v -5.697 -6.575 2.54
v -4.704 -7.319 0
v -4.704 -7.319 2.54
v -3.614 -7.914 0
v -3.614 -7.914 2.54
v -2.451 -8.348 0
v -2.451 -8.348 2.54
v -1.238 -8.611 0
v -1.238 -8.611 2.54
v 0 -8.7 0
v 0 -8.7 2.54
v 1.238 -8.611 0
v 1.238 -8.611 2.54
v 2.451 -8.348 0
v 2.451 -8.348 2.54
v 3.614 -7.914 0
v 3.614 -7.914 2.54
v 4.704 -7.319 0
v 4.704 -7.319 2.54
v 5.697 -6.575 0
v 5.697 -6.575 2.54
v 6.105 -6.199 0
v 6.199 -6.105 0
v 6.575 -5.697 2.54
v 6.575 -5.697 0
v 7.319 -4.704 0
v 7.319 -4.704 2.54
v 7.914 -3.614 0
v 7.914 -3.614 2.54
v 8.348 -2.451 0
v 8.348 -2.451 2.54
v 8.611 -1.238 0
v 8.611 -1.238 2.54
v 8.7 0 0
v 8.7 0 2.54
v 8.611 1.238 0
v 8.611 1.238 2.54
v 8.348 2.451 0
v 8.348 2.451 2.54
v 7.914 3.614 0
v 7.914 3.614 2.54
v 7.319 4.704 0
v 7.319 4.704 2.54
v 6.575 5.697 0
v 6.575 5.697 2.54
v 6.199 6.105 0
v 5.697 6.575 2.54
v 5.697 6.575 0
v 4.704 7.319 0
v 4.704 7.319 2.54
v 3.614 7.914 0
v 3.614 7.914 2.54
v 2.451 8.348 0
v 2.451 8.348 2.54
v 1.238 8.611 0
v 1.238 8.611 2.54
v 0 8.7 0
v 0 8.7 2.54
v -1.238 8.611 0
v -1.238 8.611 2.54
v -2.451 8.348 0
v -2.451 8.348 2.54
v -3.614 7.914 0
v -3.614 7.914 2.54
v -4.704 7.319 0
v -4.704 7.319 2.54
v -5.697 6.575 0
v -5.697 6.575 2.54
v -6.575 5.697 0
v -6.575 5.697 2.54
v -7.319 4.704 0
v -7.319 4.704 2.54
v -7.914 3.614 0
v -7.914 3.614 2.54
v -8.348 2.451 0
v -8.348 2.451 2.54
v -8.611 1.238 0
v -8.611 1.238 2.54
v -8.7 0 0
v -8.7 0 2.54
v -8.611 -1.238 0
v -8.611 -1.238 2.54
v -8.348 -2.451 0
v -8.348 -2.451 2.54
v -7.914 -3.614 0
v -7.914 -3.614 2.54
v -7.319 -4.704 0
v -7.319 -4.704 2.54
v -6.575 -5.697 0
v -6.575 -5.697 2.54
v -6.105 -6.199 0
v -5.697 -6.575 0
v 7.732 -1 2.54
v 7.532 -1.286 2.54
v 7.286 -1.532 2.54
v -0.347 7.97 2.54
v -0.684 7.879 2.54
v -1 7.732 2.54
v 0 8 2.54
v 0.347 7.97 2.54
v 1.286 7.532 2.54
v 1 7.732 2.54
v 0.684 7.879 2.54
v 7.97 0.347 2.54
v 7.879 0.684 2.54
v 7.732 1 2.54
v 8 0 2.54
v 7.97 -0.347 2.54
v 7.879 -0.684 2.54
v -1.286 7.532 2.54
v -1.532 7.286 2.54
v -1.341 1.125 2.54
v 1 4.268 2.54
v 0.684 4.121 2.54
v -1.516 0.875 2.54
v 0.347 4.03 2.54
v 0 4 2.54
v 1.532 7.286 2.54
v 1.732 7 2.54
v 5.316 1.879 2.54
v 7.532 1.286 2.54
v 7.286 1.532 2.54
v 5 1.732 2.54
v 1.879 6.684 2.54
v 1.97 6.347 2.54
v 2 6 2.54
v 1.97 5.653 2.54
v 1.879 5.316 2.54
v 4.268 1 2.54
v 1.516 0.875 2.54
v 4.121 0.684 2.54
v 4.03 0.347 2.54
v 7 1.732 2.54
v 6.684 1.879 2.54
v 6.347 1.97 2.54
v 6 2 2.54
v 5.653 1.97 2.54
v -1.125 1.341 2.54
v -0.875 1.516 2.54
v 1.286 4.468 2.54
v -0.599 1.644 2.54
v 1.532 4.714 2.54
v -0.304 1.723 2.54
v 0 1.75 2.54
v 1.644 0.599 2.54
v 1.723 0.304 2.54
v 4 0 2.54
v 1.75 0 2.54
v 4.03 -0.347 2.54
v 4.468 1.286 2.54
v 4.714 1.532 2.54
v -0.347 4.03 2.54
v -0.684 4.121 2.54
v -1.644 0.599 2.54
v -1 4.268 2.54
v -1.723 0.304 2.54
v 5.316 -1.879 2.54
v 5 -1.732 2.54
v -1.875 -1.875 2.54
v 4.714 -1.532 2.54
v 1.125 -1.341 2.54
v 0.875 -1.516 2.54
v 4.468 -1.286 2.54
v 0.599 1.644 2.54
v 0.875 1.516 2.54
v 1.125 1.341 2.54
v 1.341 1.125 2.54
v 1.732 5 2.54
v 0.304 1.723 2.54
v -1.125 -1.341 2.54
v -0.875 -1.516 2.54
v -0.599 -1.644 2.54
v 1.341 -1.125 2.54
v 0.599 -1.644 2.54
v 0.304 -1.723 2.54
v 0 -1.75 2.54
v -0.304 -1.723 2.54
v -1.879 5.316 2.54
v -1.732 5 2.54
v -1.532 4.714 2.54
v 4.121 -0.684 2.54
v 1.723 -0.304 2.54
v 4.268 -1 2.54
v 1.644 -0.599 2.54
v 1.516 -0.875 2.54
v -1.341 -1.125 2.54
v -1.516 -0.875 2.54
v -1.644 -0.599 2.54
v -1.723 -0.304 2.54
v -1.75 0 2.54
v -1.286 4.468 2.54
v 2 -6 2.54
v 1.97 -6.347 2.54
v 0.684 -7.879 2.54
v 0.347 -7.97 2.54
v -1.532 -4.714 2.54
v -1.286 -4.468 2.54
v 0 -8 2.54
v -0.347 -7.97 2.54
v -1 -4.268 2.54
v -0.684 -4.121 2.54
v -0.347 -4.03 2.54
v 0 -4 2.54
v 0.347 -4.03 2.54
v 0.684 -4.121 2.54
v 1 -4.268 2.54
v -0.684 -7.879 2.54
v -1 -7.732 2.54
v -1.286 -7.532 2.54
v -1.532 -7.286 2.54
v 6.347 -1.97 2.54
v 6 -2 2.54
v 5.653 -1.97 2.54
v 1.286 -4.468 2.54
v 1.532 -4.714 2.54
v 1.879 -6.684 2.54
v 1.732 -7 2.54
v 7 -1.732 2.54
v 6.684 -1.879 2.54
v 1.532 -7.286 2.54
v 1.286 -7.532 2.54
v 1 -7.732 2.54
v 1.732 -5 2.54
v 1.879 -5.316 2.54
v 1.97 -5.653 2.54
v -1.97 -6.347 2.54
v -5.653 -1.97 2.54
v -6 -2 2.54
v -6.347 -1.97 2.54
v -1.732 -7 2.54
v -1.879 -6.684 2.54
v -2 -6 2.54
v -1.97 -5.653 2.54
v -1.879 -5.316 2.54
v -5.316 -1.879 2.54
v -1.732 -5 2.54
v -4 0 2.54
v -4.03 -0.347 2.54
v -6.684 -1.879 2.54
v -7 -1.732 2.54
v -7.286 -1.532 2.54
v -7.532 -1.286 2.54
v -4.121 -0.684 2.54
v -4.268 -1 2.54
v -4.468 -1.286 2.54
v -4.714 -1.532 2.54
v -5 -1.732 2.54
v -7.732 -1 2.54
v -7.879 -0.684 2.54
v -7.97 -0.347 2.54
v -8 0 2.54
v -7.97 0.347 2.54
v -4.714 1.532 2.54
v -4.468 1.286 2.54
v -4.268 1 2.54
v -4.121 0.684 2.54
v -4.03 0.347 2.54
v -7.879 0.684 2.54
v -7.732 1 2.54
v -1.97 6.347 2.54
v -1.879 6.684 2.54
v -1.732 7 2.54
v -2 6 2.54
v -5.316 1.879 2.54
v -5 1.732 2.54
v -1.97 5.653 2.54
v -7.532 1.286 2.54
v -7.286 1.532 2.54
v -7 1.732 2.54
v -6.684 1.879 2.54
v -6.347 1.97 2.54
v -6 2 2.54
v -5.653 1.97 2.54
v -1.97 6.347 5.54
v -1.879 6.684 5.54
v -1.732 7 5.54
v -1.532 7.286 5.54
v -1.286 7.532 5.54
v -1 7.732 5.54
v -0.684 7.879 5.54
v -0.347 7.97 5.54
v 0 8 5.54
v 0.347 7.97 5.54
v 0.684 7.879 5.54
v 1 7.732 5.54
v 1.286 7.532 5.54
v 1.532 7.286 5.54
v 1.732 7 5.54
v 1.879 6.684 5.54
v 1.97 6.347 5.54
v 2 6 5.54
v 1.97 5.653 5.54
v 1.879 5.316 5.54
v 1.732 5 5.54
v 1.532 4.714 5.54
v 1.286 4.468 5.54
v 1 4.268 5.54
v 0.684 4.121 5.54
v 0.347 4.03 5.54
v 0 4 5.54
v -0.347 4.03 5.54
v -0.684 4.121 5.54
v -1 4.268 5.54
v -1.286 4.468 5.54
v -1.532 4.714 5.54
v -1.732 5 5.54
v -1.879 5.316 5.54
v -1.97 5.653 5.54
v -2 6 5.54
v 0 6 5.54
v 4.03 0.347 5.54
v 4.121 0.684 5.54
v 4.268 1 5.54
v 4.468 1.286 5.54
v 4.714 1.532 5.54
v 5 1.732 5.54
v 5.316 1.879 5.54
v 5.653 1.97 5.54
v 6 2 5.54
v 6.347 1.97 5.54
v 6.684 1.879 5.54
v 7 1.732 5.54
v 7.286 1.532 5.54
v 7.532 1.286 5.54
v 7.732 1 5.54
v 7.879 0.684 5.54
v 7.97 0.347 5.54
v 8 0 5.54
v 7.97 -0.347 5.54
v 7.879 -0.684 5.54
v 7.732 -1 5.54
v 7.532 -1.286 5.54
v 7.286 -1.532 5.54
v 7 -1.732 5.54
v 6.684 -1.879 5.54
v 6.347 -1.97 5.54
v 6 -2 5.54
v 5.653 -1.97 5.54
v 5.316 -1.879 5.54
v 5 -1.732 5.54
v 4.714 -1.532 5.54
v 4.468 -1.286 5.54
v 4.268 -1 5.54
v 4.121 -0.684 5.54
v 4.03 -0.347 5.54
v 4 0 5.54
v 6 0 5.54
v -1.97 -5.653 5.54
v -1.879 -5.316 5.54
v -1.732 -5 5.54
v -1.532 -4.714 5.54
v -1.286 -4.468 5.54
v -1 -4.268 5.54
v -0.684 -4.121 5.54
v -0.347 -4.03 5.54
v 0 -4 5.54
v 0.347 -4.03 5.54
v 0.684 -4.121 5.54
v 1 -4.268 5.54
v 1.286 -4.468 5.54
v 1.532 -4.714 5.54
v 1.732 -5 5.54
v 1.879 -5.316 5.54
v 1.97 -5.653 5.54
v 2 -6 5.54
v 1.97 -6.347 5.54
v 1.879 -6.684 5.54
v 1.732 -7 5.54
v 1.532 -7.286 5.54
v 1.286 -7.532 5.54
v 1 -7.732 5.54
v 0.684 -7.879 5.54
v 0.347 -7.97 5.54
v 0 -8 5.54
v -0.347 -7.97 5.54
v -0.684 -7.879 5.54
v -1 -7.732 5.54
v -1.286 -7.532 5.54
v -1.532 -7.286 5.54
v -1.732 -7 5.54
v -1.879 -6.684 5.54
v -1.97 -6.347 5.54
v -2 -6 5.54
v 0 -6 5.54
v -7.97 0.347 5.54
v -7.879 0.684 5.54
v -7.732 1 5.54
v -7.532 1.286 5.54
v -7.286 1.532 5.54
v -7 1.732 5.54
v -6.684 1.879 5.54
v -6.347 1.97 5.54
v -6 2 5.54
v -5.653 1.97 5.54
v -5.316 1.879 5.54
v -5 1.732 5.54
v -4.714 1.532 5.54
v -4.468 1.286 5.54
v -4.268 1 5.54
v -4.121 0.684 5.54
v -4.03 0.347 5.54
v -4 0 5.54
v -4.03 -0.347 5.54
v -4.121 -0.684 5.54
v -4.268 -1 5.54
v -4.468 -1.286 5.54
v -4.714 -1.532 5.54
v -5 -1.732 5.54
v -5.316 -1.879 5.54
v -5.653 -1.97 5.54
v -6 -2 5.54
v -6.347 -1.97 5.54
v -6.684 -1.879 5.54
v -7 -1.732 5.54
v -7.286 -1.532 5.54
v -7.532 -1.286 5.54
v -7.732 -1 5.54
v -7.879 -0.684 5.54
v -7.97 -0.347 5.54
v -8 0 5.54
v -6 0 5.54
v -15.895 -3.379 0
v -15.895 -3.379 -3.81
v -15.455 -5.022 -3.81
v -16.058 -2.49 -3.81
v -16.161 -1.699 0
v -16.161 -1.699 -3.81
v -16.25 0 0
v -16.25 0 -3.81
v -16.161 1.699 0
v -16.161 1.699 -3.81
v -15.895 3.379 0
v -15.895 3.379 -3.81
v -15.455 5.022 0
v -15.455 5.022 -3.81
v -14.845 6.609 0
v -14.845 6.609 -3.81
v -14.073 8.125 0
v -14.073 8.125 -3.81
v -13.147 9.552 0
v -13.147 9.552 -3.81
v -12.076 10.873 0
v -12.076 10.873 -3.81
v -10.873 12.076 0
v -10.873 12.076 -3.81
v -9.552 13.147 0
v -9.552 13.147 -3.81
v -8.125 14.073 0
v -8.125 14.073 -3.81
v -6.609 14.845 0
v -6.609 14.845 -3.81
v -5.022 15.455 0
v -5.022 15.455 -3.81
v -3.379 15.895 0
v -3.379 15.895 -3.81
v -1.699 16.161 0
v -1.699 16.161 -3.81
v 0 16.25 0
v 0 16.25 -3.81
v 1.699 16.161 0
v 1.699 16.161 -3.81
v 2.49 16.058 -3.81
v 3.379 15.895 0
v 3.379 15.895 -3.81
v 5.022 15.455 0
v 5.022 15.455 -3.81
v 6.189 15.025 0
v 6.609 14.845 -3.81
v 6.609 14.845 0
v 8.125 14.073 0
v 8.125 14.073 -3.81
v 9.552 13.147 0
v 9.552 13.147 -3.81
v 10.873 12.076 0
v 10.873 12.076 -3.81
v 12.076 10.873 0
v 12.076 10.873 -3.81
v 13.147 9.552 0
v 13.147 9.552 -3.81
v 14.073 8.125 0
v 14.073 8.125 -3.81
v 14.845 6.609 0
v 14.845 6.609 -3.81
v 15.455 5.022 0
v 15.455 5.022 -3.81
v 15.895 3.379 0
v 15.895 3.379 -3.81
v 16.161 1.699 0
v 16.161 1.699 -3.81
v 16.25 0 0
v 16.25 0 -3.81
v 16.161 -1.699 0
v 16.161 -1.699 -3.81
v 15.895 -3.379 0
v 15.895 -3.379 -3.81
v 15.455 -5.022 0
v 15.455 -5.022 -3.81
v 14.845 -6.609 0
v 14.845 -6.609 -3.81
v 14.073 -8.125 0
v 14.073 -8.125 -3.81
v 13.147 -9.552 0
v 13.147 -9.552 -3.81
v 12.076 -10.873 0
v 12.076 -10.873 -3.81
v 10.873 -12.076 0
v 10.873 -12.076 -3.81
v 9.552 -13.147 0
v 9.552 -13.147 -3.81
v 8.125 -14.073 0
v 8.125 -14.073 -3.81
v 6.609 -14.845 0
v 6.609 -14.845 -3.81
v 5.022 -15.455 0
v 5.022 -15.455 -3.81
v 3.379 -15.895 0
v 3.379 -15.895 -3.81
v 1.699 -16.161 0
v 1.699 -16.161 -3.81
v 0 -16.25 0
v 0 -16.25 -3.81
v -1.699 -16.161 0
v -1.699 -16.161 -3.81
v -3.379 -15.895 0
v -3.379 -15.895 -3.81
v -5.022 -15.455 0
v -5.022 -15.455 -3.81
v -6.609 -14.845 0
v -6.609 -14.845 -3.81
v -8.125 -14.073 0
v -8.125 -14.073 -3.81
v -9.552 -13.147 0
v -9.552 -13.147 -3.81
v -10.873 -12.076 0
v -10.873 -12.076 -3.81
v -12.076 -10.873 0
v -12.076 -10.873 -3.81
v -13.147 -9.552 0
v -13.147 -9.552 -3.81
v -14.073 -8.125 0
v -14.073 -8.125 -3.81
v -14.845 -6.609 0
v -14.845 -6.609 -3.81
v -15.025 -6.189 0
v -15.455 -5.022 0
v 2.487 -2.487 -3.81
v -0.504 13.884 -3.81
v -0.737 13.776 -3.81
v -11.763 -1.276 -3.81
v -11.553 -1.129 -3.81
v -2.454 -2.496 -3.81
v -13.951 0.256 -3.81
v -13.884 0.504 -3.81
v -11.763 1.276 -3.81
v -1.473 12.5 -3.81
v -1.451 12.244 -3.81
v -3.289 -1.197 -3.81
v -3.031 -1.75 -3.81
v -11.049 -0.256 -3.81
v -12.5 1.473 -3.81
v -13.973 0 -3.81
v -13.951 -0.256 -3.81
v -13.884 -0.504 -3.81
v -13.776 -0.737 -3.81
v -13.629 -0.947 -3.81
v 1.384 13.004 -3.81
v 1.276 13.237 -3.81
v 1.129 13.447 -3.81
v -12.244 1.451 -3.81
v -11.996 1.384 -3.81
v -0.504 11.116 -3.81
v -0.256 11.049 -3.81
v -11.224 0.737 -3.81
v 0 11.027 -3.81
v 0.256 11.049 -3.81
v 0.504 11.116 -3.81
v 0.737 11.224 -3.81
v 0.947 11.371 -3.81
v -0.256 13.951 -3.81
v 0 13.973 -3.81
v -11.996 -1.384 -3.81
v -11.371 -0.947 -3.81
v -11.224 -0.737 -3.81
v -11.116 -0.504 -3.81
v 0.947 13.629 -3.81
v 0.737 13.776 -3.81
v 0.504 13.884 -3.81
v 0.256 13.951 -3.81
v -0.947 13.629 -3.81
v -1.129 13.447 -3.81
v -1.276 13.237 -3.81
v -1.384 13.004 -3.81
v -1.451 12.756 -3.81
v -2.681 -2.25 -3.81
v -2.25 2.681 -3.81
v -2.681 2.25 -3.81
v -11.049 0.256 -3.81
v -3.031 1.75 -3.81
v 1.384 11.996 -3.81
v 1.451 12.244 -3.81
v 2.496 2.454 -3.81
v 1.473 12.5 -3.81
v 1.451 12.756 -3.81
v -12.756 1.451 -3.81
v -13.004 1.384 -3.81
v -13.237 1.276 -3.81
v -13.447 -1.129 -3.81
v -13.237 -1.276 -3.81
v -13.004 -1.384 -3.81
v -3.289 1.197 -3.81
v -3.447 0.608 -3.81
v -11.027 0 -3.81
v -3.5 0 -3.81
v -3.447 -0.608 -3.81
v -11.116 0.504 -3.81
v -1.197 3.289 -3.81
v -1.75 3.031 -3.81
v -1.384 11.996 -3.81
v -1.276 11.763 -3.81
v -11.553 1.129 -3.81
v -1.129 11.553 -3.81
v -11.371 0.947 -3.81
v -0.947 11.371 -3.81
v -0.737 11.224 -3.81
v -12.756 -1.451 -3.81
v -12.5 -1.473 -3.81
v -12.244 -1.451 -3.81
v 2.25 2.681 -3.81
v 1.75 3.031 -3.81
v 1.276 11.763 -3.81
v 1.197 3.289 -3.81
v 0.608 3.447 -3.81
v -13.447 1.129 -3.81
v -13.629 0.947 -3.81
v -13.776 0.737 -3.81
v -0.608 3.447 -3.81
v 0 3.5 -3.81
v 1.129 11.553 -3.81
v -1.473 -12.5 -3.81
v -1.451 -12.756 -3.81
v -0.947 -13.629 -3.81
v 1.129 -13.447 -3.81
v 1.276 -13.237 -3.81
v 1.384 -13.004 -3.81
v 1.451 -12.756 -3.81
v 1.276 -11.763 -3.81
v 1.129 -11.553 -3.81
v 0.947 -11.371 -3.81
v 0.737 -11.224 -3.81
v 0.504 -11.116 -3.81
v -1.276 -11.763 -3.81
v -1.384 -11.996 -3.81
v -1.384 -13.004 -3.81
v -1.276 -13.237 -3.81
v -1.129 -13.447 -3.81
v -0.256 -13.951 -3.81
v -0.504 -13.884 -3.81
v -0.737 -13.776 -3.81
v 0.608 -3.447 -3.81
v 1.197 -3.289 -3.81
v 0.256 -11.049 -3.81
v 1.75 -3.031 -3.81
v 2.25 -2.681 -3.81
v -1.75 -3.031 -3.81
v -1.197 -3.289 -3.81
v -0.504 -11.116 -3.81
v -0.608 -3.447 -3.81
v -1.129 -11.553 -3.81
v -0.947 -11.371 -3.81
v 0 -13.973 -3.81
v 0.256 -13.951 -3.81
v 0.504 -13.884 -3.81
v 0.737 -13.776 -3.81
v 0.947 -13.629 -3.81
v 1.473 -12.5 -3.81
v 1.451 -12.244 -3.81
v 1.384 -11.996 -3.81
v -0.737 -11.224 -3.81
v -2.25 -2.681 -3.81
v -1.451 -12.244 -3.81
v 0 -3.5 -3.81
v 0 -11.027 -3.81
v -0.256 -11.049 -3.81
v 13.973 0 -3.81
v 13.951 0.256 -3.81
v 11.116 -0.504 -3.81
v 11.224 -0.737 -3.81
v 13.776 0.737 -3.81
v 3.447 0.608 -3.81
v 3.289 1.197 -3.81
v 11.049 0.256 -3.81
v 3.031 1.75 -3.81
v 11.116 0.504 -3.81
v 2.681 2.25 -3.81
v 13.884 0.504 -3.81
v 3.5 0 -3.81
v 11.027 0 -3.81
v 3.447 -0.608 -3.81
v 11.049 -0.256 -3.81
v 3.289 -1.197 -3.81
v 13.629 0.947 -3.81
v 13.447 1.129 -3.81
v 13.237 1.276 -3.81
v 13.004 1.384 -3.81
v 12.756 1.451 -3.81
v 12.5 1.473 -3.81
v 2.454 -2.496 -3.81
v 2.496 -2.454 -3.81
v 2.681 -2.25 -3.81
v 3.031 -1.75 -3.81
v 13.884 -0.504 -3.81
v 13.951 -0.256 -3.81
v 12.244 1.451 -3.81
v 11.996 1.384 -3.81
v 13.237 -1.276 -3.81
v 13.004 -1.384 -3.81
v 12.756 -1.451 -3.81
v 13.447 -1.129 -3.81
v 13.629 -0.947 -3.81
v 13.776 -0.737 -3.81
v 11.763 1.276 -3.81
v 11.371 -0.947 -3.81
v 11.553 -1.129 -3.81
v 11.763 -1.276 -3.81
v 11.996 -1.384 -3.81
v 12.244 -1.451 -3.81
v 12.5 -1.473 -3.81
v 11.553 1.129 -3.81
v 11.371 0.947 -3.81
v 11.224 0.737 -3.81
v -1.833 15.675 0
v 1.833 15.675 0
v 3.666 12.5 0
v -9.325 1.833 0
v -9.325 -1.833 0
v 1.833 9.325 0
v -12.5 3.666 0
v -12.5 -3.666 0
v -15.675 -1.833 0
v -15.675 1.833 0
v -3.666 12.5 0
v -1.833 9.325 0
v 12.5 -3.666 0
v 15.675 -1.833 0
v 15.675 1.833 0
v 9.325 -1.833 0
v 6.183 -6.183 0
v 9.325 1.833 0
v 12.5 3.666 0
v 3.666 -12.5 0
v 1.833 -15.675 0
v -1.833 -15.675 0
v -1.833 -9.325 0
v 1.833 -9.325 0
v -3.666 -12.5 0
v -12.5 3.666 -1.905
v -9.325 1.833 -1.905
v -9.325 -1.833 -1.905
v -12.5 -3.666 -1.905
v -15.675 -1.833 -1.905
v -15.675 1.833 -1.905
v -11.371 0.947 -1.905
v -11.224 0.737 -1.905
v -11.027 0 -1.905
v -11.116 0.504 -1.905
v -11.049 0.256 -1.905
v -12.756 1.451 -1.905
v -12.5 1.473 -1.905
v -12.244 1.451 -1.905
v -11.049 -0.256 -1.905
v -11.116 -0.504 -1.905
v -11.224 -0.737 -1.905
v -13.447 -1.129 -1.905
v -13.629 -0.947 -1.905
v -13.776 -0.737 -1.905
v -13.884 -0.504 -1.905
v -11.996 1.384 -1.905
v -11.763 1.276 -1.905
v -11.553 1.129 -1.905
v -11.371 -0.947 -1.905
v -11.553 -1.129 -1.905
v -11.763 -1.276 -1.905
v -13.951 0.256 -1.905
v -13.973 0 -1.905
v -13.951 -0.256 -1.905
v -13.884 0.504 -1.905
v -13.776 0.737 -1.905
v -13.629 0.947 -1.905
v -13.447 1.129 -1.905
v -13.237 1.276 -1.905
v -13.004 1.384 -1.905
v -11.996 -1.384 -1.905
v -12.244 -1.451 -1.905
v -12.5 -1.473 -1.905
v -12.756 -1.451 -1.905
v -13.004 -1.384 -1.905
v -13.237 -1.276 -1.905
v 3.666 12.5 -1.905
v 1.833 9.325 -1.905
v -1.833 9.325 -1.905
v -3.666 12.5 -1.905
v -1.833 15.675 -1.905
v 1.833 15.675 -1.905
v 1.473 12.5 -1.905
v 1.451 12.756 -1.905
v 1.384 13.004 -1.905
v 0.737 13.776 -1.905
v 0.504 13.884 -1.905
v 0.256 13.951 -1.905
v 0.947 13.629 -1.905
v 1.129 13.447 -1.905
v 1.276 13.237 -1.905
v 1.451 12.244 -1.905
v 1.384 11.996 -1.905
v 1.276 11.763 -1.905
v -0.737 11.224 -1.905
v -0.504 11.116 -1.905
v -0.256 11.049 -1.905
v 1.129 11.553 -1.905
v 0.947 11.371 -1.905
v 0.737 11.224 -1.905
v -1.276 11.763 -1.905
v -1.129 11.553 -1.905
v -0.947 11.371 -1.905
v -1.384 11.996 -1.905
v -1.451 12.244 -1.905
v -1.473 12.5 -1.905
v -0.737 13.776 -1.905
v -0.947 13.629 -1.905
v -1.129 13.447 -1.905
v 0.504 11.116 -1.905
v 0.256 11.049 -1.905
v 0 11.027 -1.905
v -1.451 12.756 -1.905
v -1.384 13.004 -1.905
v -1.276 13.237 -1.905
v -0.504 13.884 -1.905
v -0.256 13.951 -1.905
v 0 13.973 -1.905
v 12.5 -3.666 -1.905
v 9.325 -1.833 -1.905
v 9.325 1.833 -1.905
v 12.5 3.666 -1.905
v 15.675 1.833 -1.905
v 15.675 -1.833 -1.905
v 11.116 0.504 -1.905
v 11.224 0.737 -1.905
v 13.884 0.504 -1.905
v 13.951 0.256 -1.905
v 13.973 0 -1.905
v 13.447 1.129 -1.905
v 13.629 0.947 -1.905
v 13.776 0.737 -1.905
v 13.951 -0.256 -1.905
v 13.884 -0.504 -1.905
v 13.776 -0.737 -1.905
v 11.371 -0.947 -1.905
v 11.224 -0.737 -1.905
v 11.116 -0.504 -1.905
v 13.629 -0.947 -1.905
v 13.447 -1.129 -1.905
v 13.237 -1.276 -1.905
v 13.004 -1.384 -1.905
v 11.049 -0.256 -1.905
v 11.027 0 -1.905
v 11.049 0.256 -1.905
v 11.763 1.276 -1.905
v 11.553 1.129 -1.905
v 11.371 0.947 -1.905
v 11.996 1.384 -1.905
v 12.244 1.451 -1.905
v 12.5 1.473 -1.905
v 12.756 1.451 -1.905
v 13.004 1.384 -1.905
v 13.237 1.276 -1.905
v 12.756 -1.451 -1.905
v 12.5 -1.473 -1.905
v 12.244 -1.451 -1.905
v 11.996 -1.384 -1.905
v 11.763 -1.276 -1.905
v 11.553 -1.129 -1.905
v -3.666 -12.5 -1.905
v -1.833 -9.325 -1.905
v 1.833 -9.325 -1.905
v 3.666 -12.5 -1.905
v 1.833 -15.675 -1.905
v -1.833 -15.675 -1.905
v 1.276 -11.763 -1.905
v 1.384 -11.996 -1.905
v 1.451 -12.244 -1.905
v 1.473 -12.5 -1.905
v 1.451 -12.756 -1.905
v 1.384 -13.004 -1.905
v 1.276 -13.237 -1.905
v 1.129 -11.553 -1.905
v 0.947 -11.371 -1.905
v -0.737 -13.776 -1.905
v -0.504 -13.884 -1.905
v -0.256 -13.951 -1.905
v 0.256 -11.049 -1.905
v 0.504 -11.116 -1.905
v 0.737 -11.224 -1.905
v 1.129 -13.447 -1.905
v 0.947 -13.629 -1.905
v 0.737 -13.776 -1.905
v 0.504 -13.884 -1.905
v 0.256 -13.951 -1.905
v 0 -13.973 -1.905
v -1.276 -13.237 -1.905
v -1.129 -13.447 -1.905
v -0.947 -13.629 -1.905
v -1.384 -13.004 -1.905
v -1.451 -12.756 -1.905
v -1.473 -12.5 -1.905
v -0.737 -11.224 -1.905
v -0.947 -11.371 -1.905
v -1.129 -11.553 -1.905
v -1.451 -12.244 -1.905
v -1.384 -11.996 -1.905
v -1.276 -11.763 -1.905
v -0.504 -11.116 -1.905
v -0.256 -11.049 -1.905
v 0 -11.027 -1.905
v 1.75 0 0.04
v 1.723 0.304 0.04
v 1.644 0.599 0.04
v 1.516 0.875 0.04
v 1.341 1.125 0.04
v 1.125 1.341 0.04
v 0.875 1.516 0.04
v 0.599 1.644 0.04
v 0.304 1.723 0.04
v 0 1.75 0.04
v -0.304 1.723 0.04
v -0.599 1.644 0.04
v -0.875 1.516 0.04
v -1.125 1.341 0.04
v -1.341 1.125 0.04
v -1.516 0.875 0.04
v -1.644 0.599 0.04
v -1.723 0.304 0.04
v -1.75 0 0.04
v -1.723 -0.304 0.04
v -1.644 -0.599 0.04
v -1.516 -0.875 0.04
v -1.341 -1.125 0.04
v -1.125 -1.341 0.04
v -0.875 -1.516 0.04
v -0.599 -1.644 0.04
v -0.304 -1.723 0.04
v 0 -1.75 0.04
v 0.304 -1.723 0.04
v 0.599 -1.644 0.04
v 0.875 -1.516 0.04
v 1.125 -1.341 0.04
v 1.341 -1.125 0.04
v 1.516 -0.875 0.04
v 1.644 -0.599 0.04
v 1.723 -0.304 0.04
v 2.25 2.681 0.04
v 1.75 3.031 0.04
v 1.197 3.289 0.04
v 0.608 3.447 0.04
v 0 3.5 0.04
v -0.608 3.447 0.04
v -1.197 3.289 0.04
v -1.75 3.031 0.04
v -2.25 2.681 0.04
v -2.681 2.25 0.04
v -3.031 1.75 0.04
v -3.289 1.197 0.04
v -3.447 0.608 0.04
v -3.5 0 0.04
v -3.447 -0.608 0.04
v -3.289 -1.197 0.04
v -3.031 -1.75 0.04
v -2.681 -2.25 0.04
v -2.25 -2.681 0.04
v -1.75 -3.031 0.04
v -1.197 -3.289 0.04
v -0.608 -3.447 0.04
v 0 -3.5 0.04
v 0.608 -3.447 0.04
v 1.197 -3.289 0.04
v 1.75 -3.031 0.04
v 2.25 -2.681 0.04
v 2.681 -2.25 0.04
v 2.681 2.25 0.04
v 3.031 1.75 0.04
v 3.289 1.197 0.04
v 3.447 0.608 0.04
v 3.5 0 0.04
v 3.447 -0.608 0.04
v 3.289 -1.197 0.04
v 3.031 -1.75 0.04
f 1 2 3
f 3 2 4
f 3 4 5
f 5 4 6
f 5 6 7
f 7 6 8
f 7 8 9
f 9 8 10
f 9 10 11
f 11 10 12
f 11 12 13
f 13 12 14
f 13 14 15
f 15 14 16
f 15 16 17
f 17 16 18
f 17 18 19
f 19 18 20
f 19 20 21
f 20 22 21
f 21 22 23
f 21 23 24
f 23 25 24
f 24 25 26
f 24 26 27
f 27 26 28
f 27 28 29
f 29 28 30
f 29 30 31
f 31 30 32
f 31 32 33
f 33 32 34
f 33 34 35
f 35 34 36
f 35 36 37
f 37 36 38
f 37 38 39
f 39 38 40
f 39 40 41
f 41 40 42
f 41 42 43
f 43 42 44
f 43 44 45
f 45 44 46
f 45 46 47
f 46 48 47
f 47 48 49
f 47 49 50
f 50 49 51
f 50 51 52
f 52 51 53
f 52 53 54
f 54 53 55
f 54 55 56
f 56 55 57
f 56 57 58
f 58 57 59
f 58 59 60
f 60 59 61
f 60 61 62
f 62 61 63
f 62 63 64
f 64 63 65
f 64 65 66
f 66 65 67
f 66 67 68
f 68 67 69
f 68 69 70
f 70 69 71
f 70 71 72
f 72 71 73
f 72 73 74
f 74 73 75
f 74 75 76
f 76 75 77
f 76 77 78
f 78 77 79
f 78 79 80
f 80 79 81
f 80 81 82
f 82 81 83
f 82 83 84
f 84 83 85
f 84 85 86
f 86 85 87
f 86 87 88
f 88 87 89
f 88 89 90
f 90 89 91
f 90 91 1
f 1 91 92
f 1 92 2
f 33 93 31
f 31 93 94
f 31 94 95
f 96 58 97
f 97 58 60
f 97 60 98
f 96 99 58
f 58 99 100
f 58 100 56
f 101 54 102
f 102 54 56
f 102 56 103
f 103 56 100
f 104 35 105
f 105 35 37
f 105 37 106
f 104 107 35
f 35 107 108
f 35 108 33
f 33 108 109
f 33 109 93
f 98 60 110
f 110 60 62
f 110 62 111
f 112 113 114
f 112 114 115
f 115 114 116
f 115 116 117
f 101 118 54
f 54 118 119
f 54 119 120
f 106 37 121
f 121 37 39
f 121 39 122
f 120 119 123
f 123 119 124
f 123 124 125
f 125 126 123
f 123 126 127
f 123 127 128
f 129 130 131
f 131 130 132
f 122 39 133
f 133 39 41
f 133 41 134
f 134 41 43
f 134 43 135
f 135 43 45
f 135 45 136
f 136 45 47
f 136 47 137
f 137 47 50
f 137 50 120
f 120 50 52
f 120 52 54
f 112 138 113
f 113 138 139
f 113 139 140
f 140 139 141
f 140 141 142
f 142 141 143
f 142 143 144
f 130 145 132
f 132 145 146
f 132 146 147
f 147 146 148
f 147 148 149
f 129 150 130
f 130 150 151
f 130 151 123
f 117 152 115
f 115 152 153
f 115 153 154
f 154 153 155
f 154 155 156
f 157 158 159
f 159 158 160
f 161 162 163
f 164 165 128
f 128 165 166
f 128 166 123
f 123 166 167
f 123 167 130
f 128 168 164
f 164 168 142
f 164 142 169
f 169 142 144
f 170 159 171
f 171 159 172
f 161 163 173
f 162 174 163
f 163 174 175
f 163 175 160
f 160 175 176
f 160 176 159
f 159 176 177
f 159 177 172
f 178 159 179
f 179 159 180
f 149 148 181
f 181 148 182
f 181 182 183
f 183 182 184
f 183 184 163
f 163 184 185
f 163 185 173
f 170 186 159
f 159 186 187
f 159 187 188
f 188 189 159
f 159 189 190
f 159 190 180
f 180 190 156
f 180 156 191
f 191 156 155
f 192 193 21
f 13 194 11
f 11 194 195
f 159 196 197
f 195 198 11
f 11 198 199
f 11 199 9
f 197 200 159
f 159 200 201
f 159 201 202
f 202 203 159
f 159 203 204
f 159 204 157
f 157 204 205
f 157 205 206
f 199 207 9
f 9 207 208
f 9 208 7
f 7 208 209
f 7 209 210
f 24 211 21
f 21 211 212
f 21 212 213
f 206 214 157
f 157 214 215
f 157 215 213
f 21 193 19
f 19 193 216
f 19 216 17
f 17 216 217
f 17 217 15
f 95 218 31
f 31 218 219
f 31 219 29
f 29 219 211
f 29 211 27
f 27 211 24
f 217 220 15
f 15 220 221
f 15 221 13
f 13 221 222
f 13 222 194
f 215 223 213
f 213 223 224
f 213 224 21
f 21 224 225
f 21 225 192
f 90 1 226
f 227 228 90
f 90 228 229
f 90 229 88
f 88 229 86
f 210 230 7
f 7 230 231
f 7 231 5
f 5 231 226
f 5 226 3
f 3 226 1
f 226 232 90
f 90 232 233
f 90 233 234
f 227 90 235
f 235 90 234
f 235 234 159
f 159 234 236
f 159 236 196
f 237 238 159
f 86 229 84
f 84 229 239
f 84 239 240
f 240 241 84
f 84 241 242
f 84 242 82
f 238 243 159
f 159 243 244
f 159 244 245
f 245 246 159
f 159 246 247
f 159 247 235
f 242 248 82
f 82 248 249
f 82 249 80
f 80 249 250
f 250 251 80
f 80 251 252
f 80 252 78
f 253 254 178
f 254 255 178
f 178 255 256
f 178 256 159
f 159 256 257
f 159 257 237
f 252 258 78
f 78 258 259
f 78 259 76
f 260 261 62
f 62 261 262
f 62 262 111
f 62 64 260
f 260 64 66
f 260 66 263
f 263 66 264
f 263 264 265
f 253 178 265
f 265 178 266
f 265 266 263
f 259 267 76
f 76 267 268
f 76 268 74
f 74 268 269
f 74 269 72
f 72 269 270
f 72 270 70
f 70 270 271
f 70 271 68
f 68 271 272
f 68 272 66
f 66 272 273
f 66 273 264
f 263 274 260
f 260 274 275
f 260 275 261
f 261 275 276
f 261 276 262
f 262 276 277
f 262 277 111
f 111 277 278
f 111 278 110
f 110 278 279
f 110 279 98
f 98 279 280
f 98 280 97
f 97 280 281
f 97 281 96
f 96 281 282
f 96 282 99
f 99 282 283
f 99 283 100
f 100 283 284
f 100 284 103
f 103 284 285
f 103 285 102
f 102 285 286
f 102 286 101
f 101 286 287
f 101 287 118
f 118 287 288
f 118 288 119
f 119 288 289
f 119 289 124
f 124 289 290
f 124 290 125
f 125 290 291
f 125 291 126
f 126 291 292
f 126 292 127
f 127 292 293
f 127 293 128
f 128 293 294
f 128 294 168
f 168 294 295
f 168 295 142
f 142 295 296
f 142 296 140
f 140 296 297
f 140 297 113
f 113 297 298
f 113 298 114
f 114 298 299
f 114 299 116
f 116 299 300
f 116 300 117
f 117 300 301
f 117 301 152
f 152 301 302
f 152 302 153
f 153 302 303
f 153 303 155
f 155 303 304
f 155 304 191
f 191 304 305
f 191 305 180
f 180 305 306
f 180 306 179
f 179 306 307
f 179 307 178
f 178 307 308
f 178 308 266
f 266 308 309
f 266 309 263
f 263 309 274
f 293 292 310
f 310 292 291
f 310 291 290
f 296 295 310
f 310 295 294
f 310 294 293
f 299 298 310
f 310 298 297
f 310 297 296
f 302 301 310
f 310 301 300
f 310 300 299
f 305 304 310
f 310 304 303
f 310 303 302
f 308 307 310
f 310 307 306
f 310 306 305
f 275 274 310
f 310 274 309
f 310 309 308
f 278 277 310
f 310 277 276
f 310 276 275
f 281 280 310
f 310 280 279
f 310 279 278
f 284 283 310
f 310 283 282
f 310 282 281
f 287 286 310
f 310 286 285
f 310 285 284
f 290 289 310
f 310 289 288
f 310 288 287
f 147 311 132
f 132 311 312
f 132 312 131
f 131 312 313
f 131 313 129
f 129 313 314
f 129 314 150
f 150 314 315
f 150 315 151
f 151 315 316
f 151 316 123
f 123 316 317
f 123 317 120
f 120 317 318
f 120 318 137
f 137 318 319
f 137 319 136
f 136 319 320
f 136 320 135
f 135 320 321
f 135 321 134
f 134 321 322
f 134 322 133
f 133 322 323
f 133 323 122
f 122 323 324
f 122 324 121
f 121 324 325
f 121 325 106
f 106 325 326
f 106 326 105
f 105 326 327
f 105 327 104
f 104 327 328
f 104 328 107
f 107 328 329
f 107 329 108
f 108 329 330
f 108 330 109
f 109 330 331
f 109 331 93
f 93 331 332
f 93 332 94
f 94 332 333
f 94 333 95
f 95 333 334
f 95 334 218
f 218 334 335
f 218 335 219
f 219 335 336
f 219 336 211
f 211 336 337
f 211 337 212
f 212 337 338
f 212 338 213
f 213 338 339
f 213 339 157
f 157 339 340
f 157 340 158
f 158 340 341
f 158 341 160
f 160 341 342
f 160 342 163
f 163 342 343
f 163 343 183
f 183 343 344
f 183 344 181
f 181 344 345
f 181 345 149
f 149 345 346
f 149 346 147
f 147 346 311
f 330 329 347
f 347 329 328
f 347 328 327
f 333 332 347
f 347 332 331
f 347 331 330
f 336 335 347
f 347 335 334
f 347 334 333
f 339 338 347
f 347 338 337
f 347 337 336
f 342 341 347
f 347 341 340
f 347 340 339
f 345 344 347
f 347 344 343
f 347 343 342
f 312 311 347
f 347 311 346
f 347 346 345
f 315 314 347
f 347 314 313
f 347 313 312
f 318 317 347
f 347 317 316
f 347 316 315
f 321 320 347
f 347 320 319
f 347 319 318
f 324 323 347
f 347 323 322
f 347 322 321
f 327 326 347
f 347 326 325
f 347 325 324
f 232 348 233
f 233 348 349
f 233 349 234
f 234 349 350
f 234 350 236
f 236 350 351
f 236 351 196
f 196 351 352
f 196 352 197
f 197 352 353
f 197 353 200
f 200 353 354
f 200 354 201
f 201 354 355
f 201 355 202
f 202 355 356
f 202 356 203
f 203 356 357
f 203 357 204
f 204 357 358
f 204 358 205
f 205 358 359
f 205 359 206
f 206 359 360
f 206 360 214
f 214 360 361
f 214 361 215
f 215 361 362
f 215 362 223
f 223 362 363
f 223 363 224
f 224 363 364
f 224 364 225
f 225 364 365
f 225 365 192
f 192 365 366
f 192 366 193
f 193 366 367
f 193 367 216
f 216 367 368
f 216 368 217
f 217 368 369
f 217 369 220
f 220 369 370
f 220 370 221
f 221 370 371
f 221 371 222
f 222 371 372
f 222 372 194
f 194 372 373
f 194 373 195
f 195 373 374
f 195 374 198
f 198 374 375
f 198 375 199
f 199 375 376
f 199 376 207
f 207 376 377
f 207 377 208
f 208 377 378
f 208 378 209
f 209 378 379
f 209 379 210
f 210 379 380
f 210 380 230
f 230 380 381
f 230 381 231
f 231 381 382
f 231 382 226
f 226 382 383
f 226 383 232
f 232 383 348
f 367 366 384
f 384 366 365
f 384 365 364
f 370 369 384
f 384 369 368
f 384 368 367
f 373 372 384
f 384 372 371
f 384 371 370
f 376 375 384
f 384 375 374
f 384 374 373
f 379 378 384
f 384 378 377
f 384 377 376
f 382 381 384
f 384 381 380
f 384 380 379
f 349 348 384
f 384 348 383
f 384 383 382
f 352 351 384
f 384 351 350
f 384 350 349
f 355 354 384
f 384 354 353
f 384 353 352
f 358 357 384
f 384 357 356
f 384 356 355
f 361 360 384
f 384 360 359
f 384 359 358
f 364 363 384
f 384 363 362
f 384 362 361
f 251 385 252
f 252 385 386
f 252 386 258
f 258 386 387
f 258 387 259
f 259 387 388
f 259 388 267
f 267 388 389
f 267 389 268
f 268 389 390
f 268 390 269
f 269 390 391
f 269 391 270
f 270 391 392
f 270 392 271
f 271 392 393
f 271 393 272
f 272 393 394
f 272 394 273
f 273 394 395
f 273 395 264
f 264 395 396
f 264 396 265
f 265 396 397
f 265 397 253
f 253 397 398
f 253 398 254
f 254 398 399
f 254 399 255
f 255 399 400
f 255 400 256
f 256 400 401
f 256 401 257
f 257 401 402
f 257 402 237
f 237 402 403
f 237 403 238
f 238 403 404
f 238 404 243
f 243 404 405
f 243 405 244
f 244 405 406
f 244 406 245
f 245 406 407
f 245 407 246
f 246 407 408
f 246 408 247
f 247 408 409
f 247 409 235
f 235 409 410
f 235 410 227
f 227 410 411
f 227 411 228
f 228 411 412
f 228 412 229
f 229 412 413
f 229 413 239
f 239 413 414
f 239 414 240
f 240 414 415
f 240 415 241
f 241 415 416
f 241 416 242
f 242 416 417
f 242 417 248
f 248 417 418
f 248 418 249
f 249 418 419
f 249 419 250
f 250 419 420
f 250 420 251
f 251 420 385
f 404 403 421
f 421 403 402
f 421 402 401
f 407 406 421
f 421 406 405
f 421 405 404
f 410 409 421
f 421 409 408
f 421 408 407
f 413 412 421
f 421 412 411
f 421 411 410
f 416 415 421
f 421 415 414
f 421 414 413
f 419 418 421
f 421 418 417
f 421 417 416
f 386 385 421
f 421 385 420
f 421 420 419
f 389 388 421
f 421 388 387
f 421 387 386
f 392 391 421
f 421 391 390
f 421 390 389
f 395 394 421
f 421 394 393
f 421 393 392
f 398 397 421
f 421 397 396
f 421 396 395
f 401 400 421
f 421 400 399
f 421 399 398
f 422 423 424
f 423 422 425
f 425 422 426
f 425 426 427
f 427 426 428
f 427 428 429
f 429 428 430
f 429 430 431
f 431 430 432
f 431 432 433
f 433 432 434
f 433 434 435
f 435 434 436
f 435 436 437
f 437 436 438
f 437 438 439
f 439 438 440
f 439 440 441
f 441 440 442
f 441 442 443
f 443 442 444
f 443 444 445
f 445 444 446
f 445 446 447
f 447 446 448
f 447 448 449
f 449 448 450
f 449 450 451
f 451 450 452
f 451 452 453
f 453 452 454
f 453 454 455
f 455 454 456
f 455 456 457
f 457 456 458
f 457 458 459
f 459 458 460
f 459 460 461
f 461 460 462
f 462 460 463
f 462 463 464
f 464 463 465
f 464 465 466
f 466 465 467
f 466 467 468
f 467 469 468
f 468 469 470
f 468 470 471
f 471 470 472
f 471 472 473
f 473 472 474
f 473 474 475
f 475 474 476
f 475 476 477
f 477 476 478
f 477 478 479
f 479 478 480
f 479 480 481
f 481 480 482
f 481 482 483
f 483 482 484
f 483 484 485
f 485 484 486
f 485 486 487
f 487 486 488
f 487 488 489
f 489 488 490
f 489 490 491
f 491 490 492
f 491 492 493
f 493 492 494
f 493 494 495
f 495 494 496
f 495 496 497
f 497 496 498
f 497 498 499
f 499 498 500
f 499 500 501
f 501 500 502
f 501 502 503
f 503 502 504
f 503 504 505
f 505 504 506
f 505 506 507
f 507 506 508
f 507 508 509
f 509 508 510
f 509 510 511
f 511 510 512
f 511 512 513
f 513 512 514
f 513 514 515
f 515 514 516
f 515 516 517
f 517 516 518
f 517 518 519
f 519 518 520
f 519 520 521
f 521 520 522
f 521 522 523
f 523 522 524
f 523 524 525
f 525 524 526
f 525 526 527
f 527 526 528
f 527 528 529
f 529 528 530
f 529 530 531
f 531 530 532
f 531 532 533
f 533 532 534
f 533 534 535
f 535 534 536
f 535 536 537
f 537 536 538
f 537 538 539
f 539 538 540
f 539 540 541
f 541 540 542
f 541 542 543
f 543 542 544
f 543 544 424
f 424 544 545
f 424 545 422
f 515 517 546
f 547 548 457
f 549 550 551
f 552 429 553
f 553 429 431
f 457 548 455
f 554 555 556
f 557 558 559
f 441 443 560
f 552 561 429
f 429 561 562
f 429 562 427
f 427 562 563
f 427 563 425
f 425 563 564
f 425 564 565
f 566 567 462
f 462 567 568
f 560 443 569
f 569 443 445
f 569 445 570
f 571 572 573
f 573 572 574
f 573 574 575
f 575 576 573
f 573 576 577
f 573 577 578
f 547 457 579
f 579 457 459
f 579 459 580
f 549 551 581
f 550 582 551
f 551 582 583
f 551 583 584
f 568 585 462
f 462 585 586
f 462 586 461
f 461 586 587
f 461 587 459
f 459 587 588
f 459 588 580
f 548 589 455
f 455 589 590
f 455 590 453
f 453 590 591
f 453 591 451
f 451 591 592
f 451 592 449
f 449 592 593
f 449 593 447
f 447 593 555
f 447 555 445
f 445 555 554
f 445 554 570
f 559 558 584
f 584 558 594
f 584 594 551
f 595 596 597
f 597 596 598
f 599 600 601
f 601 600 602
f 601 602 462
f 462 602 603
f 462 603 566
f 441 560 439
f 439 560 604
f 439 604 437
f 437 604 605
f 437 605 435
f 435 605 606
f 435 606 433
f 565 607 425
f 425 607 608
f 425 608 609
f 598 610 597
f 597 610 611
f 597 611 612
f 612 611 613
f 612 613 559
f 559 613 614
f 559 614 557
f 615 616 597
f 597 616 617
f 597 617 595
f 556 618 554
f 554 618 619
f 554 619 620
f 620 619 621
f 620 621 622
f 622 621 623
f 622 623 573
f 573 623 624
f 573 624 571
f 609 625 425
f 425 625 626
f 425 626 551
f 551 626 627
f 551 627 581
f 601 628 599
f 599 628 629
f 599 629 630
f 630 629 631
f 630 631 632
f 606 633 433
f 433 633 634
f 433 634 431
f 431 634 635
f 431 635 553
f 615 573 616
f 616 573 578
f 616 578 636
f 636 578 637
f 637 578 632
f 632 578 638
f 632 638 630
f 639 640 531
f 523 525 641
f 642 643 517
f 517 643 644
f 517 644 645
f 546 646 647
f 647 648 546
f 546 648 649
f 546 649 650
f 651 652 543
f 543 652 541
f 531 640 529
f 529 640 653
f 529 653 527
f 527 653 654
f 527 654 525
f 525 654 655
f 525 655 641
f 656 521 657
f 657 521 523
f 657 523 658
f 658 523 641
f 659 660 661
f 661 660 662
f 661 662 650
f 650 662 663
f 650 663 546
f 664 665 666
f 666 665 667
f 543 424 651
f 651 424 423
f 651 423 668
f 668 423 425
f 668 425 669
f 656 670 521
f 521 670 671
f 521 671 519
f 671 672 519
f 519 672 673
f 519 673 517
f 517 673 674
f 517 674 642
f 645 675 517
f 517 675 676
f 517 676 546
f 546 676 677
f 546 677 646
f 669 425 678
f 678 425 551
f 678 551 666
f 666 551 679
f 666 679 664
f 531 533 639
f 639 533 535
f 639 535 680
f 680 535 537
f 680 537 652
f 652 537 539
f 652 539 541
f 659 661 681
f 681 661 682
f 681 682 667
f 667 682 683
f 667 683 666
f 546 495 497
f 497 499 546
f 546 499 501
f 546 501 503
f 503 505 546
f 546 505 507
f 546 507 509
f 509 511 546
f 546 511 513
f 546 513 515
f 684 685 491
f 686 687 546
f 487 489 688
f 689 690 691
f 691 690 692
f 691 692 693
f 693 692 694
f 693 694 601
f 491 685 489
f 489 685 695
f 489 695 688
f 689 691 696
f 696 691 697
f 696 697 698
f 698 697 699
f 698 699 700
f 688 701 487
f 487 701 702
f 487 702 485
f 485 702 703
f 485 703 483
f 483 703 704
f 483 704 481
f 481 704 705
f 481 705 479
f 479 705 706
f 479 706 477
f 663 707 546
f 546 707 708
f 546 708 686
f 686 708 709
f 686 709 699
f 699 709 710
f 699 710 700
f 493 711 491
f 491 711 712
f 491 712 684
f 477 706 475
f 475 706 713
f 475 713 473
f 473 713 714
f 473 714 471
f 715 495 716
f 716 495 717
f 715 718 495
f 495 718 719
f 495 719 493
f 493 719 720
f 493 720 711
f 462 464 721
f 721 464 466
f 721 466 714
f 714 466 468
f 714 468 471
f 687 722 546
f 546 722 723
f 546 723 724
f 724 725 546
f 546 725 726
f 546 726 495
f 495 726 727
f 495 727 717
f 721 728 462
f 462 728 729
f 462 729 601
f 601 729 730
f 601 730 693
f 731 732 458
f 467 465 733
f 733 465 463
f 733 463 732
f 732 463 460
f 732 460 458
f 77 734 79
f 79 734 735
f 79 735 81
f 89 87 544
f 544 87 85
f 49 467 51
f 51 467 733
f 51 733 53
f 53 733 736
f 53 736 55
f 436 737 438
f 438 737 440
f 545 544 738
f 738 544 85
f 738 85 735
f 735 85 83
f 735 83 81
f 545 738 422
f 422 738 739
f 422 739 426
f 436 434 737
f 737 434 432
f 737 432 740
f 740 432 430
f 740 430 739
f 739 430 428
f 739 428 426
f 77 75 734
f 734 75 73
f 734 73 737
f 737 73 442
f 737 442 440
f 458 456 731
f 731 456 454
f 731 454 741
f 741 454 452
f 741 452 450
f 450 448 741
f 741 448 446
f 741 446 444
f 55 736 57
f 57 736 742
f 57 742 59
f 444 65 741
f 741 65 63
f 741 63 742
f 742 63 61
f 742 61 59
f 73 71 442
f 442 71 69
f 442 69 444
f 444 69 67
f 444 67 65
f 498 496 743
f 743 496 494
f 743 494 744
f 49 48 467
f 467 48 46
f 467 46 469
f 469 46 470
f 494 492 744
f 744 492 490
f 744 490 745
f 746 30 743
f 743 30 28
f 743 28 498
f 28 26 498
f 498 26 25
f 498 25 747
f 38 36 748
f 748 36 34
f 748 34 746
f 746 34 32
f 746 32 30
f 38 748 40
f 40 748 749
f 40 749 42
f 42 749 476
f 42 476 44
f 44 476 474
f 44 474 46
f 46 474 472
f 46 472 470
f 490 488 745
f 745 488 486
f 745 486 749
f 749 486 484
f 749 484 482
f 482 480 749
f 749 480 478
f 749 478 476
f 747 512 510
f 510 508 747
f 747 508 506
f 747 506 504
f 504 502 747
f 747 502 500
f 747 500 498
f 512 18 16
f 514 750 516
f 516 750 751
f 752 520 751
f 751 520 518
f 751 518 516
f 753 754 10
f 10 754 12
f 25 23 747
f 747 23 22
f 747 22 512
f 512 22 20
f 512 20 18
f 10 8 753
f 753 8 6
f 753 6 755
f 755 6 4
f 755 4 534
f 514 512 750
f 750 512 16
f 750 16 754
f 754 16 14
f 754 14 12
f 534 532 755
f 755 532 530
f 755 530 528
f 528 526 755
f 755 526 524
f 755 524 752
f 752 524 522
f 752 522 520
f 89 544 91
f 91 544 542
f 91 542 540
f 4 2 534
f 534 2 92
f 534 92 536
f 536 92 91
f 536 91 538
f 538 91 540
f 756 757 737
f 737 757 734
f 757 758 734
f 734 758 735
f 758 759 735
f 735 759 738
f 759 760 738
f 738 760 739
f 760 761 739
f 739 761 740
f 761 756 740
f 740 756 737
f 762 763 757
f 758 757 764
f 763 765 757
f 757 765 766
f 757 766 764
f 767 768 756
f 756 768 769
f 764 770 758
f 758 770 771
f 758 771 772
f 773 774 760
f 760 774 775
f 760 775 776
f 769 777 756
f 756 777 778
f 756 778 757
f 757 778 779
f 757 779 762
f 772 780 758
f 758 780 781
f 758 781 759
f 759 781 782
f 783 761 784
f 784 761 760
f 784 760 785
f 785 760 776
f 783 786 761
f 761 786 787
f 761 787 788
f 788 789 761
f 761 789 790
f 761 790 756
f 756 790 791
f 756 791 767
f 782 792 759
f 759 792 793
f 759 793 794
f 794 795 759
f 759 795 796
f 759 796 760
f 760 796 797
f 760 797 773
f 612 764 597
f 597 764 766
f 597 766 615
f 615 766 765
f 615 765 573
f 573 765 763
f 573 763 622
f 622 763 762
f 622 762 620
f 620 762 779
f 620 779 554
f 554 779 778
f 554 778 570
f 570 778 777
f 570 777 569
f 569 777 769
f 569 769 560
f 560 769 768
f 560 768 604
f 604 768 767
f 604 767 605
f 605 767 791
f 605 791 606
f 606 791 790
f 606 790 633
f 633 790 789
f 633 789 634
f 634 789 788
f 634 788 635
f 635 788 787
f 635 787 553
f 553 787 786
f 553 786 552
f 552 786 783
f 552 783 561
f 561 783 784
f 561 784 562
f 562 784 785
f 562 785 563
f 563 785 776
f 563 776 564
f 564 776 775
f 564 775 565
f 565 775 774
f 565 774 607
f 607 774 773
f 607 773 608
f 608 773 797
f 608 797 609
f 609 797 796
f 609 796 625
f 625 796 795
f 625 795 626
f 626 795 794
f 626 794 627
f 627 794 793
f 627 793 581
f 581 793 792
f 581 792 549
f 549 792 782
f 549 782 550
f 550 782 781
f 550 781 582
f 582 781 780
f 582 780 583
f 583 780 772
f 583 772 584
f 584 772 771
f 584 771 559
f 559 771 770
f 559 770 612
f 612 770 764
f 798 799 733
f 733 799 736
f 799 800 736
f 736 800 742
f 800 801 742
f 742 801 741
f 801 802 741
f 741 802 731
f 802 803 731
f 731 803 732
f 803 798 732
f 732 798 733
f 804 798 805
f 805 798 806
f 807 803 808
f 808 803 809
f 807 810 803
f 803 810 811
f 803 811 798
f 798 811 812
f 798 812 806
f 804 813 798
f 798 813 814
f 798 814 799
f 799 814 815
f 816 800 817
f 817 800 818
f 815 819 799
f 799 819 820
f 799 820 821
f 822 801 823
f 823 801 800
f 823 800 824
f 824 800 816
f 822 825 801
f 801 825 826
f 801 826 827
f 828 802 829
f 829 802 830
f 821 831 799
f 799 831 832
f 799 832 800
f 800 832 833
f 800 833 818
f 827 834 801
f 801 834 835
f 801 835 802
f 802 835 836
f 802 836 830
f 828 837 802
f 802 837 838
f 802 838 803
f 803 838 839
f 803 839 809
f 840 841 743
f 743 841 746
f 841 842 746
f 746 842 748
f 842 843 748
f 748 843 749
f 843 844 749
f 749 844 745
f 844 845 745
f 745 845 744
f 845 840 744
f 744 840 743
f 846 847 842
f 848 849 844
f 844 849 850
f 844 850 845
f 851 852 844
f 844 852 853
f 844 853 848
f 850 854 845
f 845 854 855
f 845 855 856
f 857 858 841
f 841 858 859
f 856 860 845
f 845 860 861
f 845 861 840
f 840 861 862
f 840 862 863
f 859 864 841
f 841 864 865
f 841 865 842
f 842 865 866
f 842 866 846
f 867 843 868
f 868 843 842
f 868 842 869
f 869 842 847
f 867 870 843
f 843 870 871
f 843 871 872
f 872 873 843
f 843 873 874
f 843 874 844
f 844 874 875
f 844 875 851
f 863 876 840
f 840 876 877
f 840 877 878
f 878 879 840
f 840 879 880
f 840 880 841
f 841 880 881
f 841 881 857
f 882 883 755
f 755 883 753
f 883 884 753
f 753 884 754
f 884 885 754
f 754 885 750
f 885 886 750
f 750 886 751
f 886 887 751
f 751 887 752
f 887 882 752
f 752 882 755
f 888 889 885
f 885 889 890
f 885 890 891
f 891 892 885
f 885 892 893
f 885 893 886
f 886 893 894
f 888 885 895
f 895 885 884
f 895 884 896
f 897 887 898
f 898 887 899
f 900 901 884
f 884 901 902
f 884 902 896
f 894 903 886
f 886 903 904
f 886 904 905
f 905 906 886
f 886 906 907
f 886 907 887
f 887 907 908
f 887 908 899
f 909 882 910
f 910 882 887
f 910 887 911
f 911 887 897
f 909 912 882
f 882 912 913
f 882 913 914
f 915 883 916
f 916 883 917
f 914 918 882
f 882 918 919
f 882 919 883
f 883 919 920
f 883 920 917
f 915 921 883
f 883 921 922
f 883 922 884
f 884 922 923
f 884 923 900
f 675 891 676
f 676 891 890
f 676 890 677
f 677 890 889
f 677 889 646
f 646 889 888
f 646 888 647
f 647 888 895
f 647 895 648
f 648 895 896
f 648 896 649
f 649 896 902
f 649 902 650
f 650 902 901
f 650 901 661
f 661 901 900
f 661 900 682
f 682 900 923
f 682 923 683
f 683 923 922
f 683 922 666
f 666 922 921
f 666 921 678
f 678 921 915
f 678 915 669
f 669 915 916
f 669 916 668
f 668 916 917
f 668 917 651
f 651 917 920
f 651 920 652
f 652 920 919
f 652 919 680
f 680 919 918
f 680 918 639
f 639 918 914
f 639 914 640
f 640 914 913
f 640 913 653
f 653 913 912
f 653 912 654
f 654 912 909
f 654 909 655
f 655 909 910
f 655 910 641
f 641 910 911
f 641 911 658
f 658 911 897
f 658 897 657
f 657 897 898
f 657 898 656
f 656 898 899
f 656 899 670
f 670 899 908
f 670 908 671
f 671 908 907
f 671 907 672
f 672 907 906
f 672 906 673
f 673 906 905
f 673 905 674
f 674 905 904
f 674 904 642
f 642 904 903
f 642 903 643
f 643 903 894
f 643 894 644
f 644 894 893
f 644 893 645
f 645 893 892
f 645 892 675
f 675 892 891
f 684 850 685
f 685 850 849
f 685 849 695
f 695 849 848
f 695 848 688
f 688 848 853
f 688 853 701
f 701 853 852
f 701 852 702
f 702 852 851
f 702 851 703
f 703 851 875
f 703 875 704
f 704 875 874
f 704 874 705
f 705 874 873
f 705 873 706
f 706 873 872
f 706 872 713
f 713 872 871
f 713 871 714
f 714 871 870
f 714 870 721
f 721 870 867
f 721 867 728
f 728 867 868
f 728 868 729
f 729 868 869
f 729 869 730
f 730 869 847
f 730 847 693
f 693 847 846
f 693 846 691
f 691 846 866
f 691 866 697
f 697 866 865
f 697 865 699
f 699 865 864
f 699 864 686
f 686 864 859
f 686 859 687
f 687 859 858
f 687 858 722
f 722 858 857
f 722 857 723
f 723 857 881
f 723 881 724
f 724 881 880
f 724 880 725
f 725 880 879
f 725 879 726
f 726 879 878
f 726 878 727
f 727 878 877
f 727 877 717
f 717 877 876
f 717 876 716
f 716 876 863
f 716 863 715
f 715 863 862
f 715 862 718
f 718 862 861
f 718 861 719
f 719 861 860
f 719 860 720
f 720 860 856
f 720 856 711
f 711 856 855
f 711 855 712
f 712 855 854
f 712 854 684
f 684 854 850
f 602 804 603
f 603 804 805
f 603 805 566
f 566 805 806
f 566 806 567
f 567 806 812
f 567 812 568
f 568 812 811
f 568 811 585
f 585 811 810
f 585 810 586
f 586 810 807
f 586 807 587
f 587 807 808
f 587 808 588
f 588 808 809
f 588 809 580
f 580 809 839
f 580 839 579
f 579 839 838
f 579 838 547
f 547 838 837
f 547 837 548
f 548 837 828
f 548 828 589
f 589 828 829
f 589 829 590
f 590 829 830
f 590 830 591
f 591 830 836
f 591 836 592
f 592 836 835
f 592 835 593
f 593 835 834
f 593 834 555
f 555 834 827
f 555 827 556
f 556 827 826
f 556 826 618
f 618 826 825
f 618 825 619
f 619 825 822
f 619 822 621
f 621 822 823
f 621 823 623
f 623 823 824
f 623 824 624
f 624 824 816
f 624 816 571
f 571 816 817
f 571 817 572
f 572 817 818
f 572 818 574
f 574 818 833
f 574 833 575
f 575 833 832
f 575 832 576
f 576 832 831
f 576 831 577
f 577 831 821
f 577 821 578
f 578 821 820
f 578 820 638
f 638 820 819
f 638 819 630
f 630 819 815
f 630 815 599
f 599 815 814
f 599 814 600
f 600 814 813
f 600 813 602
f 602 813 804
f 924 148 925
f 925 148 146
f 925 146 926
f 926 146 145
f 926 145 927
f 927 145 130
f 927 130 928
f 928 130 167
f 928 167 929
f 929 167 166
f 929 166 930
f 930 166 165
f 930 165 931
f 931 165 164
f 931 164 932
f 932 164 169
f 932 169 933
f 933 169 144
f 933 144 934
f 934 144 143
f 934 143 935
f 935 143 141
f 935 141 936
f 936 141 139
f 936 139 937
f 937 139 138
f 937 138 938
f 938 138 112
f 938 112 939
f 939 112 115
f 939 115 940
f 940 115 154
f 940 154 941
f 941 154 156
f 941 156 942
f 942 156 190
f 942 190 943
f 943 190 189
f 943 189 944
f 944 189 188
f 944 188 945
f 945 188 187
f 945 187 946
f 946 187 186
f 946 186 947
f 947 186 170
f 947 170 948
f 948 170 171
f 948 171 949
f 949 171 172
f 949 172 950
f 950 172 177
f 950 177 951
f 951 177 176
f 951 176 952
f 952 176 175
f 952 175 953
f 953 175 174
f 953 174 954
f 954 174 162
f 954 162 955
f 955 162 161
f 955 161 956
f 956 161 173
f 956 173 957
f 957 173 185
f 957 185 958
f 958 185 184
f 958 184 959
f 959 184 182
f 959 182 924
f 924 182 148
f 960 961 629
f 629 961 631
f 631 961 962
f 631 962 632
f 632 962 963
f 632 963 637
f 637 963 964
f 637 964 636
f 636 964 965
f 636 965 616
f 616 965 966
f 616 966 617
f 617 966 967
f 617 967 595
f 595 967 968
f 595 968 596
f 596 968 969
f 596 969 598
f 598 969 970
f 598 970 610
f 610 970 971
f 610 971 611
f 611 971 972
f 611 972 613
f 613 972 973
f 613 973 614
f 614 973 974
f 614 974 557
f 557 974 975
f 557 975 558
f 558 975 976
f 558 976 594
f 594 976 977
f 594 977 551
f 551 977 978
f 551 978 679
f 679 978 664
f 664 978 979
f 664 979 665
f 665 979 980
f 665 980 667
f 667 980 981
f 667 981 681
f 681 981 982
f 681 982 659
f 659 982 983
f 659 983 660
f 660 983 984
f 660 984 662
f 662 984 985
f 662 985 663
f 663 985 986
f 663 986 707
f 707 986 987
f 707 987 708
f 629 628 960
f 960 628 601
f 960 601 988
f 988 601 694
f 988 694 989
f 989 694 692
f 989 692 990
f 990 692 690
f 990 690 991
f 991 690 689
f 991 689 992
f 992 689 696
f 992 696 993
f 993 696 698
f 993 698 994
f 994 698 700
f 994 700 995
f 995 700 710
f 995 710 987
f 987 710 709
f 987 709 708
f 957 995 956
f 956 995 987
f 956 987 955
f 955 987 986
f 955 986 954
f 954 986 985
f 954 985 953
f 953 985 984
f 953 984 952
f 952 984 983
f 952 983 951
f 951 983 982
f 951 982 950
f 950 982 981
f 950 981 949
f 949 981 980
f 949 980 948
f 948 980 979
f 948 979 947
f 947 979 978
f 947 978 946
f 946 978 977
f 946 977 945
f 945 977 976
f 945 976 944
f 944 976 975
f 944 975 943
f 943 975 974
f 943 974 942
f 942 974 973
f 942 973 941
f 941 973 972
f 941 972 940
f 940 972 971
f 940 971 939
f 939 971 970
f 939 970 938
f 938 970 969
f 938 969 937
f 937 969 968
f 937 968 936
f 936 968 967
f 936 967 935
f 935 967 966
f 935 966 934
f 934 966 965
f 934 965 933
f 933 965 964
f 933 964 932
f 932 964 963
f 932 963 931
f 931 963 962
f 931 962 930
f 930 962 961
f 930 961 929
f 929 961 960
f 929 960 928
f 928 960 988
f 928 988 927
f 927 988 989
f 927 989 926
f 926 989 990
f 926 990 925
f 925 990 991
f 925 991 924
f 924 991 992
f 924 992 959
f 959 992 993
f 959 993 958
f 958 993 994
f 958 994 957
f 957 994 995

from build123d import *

# Parameters (mm, degrees)
SKETCH1_R             = 8.7
BOSS_EXTRUDE1_DEPTH   = 2.54
SKETCH2_R             = 2
BOSS_EXTRUDE2_DEPTH   = 3
SKETCH3_R             = 16.25
BOSS_EXTRUDE3_DEPTH   = 3.81
CUT_EXTRUDE1_DEPTH    = 1.905
F_4_CLEARANCE_HOLE1_D = 2.9464
CIRPATTERN1_COUNT     = 4
SKETCH8_R             = 1.75
CUT_EXTRUDE2_DEPTH    = 2.5
SKETCH9_R             = 3.5
CUT_EXTRUDE3_DEPTH    = 24.629959797


with BuildPart() as part:
    # Sketch1 → Boss-Extrude1 (new body)
    with BuildSketch(Plane.XY):
        Circle(SKETCH1_R)
    extrude(amount=BOSS_EXTRUDE1_DEPTH)

    # Sketch2 → Boss-Extrude2 (add)
    with BuildSketch(Plane.XY.offset(2.54)):
        with Locations((0, 6)):
            Circle(SKETCH2_R)
        with Locations((6, 0)):
            Circle(SKETCH2_R)
        with Locations((0, -6)):
            Circle(SKETCH2_R)
        with Locations((-6, 0)):
            Circle(SKETCH2_R)
    extrude(amount=BOSS_EXTRUDE2_DEPTH)

    # Sketch3 → Boss-Extrude3 (add)
    with BuildSketch(Plane(origin=(0, 0, 0), x_dir=(-1, 0, 0), z_dir=(0, 0, -1))):
        with Locations(Location((0, 0, 0), (0, 0, 180))):
            Circle(SKETCH3_R)
    extrude(amount=BOSS_EXTRUDE3_DEPTH)

    # Sketch4 → Cut-Extrude1 (cut)
    with BuildSketch(Plane.XY):
        Polygon((-12.5, 3.666174209), (-15.675, 1.833087105), (-15.675, -1.833087105), (-12.5, -3.666174209), (-9.325, -1.833087105), (-9.325, 1.833087105), align=None)
    cut_extrude1 = extrude(amount=-CUT_EXTRUDE1_DEPTH, mode=Mode.SUBTRACT)

    # #4 Clearance Hole1 (through all)
    with Locations(Plane.XY.offset(-1.905)):
        with Locations((-12.5, 0)):
            f_4_clearance_hole1 = Hole(F_4_CLEARANCE_HOLE1_D / 2)

    # CirPattern1: Cut-Extrude1, #4 Clearance Hole1 ×4 about axis
    cirpattern1_axis = Axis((0, 0, 0), (0, 0, 1))
    add([cut_extrude1.rotate(cirpattern1_axis, i * 360 / CIRPATTERN1_COUNT) for i in range(1, CIRPATTERN1_COUNT)], mode=Mode.SUBTRACT)
    add([f_4_clearance_hole1.rotate(cirpattern1_axis, i * 360 / CIRPATTERN1_COUNT) for i in range(1, CIRPATTERN1_COUNT)], mode=Mode.SUBTRACT)

    # Sketch8 → Cut-Extrude2 (cut)
    with BuildSketch(Plane.XY.offset(2.54)):
        Circle(SKETCH8_R)
    extrude(amount=-CUT_EXTRUDE2_DEPTH, mode=Mode.SUBTRACT)

    # Sketch9 → Cut-Extrude3 (cut, through all)
    with BuildSketch(Plane.XY.offset(0.04)):
        Circle(SKETCH9_R)
    extrude(amount=-CUT_EXTRUDE3_DEPTH, mode=Mode.SUBTRACT)


solid = part.part
